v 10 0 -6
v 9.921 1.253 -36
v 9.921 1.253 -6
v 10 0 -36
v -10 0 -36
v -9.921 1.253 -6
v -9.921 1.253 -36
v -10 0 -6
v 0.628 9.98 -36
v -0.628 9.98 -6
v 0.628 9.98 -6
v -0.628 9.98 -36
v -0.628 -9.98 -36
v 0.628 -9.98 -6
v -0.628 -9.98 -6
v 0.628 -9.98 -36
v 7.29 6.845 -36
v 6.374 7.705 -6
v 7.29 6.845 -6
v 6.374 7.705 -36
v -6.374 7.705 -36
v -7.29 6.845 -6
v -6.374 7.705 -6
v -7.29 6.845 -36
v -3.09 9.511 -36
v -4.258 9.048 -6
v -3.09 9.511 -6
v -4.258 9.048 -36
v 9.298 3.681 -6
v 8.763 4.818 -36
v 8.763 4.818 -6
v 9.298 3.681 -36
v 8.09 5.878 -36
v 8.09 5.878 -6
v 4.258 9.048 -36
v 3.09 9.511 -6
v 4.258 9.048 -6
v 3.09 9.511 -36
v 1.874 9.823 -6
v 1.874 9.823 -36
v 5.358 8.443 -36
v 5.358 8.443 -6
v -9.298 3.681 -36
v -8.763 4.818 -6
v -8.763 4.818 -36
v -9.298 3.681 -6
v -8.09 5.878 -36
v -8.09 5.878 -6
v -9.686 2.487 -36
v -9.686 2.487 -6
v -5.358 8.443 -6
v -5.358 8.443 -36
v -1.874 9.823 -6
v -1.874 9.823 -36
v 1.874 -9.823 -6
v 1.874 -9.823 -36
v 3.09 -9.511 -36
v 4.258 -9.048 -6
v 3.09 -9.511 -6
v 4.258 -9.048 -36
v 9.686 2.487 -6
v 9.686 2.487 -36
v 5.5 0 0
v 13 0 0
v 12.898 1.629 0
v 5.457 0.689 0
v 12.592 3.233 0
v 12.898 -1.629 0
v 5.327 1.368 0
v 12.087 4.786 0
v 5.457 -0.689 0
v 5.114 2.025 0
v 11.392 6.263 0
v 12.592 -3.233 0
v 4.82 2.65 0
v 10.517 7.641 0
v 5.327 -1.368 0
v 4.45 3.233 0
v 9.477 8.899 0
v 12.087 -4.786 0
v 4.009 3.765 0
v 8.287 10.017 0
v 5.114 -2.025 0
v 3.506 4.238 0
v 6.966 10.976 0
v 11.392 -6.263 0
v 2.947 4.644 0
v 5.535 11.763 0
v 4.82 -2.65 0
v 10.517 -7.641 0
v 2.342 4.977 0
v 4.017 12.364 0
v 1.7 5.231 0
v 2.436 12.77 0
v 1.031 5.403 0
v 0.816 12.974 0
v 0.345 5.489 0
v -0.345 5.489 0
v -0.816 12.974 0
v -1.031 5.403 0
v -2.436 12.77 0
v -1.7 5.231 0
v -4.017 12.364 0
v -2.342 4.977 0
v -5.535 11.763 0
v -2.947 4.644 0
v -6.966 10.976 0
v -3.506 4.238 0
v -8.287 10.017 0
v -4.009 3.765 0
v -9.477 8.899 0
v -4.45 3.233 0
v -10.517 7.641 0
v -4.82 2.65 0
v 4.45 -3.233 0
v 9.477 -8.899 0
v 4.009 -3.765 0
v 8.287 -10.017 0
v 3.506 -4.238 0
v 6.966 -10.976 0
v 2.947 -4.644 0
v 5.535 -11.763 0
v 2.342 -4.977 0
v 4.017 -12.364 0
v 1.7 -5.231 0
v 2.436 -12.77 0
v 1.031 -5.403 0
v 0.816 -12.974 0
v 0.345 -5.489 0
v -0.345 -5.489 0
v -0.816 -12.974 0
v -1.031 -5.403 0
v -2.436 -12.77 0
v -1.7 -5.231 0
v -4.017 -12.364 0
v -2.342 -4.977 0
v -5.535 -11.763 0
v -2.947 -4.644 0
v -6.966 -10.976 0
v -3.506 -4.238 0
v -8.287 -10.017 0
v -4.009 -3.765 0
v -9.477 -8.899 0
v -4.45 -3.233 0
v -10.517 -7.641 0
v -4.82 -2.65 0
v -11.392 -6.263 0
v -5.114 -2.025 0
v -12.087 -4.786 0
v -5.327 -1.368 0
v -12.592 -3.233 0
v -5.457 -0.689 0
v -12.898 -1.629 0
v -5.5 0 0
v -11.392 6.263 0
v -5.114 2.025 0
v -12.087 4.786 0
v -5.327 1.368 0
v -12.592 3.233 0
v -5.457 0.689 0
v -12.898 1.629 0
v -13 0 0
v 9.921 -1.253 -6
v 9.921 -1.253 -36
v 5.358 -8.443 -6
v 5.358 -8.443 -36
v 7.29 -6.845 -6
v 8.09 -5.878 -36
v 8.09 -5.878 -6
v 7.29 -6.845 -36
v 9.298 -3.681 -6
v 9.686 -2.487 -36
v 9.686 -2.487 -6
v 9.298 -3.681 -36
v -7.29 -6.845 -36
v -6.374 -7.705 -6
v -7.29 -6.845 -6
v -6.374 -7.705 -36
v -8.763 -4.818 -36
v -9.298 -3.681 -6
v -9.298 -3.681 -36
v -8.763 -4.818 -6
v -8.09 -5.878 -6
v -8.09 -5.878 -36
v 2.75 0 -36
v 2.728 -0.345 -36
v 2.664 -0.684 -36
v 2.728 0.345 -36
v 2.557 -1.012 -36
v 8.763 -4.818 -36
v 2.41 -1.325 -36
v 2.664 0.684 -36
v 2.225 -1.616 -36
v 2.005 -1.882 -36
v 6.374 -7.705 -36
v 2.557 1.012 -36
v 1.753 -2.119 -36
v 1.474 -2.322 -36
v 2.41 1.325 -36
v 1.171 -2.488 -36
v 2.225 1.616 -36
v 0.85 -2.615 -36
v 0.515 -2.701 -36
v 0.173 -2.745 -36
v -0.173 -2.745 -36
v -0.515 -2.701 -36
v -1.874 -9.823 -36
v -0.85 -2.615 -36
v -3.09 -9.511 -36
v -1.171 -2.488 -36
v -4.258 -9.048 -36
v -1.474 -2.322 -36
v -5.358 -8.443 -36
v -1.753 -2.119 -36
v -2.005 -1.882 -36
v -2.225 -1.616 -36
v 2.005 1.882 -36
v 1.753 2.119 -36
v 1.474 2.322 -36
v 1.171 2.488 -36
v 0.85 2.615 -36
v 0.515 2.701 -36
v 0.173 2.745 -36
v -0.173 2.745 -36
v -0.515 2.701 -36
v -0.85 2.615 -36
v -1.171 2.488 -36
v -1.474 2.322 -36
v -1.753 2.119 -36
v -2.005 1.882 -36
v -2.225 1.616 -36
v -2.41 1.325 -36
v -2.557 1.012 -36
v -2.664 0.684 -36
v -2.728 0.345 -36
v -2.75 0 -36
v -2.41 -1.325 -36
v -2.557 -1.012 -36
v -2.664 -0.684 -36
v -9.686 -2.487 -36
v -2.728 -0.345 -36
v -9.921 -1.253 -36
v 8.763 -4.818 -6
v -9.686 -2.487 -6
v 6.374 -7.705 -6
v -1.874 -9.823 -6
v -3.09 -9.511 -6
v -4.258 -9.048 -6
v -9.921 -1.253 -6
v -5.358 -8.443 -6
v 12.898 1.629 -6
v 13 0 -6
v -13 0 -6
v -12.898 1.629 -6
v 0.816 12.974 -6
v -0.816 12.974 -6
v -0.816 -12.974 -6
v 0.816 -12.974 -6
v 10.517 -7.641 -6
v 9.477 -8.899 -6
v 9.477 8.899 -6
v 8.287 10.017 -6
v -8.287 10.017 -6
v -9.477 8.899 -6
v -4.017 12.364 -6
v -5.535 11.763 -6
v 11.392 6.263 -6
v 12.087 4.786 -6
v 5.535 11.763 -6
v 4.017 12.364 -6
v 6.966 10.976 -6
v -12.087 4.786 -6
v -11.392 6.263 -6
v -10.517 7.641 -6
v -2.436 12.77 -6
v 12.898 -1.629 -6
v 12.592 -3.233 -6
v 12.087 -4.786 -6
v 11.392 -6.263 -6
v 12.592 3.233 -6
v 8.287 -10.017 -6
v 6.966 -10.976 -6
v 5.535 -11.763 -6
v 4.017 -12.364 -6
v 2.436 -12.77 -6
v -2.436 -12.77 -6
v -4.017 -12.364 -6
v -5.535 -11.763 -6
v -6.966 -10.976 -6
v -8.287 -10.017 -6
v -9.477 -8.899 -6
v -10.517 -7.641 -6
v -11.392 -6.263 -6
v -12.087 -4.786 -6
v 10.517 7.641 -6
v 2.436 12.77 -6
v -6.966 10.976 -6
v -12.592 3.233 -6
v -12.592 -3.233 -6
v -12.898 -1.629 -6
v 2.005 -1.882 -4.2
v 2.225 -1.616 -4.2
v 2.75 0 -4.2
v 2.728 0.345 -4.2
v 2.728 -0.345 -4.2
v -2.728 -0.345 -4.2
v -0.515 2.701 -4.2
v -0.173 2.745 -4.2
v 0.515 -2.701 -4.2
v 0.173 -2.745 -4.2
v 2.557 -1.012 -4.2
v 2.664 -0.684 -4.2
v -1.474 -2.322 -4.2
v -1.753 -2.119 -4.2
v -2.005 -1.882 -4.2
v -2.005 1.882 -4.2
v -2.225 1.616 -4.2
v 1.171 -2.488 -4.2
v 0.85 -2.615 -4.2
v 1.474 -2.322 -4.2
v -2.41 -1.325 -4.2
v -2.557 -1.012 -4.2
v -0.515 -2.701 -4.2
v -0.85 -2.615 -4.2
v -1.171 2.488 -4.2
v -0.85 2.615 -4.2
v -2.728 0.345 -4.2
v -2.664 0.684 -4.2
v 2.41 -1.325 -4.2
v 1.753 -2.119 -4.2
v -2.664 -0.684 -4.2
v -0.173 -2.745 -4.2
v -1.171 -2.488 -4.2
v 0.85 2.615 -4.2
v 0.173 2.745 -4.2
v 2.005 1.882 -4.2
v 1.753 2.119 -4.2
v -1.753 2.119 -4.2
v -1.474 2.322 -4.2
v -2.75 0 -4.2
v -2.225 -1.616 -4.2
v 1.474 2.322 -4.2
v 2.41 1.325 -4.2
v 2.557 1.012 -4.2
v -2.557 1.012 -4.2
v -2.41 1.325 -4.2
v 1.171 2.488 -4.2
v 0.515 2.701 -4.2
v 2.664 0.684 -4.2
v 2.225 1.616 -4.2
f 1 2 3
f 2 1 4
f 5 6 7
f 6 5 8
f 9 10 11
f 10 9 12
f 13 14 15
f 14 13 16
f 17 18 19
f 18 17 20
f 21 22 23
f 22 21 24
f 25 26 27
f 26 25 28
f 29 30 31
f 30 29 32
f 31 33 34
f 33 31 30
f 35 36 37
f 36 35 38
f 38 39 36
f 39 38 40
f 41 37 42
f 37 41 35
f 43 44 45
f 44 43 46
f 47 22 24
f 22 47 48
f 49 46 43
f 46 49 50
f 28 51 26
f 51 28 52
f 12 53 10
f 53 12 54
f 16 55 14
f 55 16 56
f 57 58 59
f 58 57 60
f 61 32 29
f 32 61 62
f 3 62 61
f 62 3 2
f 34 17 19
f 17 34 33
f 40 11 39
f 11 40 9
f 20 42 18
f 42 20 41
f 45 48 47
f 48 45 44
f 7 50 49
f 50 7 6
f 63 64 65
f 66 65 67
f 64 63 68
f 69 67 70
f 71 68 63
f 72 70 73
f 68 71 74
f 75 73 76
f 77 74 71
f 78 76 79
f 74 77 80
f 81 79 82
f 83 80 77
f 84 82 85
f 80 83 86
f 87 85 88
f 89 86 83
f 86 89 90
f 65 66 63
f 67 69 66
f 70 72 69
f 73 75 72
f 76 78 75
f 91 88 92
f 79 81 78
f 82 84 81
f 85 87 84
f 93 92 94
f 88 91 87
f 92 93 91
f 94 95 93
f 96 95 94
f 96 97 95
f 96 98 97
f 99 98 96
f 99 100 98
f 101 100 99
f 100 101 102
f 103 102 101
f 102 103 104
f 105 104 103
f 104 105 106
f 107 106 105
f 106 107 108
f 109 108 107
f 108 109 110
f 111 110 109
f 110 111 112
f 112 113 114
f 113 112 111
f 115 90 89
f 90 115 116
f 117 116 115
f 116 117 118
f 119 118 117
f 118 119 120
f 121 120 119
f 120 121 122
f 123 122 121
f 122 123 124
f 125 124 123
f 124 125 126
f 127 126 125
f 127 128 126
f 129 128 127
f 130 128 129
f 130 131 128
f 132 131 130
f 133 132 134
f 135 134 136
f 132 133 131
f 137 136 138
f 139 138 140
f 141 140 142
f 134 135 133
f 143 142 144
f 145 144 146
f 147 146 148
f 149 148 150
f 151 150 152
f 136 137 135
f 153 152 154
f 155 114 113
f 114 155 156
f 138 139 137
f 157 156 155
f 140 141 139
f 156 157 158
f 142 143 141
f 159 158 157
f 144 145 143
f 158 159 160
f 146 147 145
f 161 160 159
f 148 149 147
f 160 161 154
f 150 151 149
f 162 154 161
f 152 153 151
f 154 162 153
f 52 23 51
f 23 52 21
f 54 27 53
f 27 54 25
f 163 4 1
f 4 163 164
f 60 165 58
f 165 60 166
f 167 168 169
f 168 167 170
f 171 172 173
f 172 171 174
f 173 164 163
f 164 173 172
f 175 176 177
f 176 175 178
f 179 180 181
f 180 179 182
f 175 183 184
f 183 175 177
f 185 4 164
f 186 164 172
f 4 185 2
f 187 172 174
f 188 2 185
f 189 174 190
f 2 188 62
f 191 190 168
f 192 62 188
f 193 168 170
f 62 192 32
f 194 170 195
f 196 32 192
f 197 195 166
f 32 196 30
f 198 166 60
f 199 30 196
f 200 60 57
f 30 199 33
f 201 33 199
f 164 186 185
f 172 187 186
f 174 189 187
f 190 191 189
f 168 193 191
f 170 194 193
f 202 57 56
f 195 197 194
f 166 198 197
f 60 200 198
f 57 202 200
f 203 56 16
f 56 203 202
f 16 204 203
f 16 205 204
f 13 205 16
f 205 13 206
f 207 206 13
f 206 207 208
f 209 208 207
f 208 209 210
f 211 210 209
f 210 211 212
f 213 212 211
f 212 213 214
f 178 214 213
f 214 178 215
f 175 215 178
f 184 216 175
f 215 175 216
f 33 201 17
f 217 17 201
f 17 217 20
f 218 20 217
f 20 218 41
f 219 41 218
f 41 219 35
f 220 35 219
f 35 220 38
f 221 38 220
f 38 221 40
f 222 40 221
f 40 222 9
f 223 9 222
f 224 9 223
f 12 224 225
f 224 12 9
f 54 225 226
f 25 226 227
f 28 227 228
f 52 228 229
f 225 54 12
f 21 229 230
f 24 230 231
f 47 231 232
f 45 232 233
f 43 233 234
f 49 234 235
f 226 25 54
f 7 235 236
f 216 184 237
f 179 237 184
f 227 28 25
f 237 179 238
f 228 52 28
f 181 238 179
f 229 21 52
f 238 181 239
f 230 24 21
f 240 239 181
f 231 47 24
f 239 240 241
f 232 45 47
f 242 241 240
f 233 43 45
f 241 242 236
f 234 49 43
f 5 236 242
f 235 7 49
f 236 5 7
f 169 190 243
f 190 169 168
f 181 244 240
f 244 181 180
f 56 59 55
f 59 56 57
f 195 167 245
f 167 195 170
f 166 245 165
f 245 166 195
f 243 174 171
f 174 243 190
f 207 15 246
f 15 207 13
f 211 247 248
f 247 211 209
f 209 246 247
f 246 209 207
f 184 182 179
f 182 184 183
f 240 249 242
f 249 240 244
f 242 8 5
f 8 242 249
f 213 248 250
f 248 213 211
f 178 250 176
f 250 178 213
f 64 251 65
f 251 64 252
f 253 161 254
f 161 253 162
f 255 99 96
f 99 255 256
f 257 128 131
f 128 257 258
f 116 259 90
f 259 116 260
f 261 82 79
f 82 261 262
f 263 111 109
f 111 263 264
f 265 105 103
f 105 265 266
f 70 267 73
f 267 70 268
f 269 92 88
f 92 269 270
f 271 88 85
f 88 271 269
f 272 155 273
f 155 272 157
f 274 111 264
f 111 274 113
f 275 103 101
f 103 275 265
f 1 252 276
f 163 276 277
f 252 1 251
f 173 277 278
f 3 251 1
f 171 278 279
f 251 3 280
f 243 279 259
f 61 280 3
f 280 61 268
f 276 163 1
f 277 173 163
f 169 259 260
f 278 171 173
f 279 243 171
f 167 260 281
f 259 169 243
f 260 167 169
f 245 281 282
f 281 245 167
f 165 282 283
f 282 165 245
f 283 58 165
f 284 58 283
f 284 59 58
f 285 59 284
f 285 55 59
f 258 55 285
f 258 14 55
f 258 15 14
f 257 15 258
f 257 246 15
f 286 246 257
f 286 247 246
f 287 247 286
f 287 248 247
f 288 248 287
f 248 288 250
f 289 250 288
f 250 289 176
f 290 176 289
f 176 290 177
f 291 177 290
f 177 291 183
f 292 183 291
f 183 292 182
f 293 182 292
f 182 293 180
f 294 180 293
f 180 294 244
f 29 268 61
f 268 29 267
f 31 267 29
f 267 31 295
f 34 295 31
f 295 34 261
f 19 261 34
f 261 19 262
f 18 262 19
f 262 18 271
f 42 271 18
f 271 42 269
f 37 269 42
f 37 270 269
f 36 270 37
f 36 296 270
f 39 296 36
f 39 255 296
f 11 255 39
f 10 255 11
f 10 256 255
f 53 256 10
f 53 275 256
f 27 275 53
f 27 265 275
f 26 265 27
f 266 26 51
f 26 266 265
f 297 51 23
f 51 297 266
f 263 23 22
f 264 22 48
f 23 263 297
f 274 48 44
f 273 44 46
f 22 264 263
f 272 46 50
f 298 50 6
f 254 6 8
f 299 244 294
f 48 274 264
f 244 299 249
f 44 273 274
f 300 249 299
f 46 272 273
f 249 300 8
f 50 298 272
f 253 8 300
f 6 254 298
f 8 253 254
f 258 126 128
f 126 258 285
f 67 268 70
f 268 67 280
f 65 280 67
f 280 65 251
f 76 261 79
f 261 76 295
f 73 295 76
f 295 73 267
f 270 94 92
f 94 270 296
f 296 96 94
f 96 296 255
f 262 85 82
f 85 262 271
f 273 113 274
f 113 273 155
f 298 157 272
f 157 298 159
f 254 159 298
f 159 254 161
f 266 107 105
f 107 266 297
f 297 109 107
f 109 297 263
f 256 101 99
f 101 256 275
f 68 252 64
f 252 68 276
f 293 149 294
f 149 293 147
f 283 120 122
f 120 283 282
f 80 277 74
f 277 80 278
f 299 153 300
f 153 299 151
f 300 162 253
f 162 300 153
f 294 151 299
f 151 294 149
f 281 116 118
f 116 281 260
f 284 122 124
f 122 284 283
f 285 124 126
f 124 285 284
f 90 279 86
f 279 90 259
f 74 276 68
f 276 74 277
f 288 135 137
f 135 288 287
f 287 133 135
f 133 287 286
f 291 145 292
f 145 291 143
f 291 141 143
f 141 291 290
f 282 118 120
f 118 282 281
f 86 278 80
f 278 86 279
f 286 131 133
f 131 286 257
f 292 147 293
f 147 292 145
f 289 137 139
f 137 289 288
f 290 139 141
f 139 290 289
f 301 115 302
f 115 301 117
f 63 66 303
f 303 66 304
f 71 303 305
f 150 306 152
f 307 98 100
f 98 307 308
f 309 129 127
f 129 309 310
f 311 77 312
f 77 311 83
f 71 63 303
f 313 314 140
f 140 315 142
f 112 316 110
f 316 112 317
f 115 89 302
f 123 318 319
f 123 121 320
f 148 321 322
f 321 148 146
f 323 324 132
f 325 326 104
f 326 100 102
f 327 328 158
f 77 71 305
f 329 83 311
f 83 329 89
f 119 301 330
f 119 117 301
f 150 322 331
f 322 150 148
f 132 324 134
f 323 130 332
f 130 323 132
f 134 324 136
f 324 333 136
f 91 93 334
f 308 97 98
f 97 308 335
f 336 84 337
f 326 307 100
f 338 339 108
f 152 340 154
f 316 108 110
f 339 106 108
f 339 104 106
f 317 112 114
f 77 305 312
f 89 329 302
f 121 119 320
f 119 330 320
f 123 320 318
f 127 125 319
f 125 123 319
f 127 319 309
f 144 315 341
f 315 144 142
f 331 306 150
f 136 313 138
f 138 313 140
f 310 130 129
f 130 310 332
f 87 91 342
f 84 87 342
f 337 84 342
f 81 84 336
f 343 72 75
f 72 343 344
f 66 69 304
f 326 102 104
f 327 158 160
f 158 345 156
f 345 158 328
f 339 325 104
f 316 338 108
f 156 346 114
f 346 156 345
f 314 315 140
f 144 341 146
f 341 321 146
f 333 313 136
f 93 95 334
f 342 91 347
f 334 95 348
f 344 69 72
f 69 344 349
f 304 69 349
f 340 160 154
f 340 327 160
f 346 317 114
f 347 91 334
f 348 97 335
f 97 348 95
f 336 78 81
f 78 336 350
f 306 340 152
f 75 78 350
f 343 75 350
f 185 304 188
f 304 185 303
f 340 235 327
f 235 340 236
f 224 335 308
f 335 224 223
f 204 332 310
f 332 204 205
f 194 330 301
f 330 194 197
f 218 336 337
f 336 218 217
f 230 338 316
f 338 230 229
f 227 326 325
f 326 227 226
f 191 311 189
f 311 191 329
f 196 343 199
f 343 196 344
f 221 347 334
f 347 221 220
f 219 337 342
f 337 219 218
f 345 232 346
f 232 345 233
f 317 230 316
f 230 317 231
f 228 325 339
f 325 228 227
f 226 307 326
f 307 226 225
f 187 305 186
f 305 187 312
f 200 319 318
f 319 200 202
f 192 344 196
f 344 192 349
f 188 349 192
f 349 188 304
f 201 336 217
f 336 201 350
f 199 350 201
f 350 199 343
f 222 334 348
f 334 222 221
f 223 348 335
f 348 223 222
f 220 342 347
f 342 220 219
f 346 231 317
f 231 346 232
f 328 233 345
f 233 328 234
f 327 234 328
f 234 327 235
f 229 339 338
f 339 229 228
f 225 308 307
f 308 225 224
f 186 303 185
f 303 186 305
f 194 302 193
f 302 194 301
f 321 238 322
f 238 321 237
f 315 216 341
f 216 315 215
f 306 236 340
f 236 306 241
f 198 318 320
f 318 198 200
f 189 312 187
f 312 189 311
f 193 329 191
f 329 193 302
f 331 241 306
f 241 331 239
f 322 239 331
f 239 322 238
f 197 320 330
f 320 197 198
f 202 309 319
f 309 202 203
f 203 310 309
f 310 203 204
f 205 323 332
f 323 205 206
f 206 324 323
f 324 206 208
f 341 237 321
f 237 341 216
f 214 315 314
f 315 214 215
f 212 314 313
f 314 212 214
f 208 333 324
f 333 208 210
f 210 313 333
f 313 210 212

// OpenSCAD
$fn = 50;


difference() {
	union() {
		translate(v = [0, 0, -36.0000000000]) {
			cylinder(h = 36, r = 10.0000000000);
		}
		translate(v = [0, 0, -6.0000000000]) {
			cylinder(h = 6, r = 13.0000000000);
		}
	}
	union() {
		translate(v = [0, 0, 0]) {
			rotate(a = [0, 0, 0]) {
				difference() {
					union() {
						#translate(v = [0, 0, -36.0000000000]) {
							cylinder(h = 36, r = 2.2500000000);
						}
						#translate(v = [0, 0, -4.2000000000]) {
							cylinder(h = 4.2000000000, r1 = 2.7500000000, r2 = 5.5000000000);
						}
						#translate(v = [0, 0, -36.0000000000]) {
							cylinder(h = 36, r = 2.7500000000);
						}
						#translate(v = [0, 0, -36.0000000000]) {
							cylinder(h = 36, r = 2.2500000000);
						}
					}
					union();
				}
			}
		}
	}
}
